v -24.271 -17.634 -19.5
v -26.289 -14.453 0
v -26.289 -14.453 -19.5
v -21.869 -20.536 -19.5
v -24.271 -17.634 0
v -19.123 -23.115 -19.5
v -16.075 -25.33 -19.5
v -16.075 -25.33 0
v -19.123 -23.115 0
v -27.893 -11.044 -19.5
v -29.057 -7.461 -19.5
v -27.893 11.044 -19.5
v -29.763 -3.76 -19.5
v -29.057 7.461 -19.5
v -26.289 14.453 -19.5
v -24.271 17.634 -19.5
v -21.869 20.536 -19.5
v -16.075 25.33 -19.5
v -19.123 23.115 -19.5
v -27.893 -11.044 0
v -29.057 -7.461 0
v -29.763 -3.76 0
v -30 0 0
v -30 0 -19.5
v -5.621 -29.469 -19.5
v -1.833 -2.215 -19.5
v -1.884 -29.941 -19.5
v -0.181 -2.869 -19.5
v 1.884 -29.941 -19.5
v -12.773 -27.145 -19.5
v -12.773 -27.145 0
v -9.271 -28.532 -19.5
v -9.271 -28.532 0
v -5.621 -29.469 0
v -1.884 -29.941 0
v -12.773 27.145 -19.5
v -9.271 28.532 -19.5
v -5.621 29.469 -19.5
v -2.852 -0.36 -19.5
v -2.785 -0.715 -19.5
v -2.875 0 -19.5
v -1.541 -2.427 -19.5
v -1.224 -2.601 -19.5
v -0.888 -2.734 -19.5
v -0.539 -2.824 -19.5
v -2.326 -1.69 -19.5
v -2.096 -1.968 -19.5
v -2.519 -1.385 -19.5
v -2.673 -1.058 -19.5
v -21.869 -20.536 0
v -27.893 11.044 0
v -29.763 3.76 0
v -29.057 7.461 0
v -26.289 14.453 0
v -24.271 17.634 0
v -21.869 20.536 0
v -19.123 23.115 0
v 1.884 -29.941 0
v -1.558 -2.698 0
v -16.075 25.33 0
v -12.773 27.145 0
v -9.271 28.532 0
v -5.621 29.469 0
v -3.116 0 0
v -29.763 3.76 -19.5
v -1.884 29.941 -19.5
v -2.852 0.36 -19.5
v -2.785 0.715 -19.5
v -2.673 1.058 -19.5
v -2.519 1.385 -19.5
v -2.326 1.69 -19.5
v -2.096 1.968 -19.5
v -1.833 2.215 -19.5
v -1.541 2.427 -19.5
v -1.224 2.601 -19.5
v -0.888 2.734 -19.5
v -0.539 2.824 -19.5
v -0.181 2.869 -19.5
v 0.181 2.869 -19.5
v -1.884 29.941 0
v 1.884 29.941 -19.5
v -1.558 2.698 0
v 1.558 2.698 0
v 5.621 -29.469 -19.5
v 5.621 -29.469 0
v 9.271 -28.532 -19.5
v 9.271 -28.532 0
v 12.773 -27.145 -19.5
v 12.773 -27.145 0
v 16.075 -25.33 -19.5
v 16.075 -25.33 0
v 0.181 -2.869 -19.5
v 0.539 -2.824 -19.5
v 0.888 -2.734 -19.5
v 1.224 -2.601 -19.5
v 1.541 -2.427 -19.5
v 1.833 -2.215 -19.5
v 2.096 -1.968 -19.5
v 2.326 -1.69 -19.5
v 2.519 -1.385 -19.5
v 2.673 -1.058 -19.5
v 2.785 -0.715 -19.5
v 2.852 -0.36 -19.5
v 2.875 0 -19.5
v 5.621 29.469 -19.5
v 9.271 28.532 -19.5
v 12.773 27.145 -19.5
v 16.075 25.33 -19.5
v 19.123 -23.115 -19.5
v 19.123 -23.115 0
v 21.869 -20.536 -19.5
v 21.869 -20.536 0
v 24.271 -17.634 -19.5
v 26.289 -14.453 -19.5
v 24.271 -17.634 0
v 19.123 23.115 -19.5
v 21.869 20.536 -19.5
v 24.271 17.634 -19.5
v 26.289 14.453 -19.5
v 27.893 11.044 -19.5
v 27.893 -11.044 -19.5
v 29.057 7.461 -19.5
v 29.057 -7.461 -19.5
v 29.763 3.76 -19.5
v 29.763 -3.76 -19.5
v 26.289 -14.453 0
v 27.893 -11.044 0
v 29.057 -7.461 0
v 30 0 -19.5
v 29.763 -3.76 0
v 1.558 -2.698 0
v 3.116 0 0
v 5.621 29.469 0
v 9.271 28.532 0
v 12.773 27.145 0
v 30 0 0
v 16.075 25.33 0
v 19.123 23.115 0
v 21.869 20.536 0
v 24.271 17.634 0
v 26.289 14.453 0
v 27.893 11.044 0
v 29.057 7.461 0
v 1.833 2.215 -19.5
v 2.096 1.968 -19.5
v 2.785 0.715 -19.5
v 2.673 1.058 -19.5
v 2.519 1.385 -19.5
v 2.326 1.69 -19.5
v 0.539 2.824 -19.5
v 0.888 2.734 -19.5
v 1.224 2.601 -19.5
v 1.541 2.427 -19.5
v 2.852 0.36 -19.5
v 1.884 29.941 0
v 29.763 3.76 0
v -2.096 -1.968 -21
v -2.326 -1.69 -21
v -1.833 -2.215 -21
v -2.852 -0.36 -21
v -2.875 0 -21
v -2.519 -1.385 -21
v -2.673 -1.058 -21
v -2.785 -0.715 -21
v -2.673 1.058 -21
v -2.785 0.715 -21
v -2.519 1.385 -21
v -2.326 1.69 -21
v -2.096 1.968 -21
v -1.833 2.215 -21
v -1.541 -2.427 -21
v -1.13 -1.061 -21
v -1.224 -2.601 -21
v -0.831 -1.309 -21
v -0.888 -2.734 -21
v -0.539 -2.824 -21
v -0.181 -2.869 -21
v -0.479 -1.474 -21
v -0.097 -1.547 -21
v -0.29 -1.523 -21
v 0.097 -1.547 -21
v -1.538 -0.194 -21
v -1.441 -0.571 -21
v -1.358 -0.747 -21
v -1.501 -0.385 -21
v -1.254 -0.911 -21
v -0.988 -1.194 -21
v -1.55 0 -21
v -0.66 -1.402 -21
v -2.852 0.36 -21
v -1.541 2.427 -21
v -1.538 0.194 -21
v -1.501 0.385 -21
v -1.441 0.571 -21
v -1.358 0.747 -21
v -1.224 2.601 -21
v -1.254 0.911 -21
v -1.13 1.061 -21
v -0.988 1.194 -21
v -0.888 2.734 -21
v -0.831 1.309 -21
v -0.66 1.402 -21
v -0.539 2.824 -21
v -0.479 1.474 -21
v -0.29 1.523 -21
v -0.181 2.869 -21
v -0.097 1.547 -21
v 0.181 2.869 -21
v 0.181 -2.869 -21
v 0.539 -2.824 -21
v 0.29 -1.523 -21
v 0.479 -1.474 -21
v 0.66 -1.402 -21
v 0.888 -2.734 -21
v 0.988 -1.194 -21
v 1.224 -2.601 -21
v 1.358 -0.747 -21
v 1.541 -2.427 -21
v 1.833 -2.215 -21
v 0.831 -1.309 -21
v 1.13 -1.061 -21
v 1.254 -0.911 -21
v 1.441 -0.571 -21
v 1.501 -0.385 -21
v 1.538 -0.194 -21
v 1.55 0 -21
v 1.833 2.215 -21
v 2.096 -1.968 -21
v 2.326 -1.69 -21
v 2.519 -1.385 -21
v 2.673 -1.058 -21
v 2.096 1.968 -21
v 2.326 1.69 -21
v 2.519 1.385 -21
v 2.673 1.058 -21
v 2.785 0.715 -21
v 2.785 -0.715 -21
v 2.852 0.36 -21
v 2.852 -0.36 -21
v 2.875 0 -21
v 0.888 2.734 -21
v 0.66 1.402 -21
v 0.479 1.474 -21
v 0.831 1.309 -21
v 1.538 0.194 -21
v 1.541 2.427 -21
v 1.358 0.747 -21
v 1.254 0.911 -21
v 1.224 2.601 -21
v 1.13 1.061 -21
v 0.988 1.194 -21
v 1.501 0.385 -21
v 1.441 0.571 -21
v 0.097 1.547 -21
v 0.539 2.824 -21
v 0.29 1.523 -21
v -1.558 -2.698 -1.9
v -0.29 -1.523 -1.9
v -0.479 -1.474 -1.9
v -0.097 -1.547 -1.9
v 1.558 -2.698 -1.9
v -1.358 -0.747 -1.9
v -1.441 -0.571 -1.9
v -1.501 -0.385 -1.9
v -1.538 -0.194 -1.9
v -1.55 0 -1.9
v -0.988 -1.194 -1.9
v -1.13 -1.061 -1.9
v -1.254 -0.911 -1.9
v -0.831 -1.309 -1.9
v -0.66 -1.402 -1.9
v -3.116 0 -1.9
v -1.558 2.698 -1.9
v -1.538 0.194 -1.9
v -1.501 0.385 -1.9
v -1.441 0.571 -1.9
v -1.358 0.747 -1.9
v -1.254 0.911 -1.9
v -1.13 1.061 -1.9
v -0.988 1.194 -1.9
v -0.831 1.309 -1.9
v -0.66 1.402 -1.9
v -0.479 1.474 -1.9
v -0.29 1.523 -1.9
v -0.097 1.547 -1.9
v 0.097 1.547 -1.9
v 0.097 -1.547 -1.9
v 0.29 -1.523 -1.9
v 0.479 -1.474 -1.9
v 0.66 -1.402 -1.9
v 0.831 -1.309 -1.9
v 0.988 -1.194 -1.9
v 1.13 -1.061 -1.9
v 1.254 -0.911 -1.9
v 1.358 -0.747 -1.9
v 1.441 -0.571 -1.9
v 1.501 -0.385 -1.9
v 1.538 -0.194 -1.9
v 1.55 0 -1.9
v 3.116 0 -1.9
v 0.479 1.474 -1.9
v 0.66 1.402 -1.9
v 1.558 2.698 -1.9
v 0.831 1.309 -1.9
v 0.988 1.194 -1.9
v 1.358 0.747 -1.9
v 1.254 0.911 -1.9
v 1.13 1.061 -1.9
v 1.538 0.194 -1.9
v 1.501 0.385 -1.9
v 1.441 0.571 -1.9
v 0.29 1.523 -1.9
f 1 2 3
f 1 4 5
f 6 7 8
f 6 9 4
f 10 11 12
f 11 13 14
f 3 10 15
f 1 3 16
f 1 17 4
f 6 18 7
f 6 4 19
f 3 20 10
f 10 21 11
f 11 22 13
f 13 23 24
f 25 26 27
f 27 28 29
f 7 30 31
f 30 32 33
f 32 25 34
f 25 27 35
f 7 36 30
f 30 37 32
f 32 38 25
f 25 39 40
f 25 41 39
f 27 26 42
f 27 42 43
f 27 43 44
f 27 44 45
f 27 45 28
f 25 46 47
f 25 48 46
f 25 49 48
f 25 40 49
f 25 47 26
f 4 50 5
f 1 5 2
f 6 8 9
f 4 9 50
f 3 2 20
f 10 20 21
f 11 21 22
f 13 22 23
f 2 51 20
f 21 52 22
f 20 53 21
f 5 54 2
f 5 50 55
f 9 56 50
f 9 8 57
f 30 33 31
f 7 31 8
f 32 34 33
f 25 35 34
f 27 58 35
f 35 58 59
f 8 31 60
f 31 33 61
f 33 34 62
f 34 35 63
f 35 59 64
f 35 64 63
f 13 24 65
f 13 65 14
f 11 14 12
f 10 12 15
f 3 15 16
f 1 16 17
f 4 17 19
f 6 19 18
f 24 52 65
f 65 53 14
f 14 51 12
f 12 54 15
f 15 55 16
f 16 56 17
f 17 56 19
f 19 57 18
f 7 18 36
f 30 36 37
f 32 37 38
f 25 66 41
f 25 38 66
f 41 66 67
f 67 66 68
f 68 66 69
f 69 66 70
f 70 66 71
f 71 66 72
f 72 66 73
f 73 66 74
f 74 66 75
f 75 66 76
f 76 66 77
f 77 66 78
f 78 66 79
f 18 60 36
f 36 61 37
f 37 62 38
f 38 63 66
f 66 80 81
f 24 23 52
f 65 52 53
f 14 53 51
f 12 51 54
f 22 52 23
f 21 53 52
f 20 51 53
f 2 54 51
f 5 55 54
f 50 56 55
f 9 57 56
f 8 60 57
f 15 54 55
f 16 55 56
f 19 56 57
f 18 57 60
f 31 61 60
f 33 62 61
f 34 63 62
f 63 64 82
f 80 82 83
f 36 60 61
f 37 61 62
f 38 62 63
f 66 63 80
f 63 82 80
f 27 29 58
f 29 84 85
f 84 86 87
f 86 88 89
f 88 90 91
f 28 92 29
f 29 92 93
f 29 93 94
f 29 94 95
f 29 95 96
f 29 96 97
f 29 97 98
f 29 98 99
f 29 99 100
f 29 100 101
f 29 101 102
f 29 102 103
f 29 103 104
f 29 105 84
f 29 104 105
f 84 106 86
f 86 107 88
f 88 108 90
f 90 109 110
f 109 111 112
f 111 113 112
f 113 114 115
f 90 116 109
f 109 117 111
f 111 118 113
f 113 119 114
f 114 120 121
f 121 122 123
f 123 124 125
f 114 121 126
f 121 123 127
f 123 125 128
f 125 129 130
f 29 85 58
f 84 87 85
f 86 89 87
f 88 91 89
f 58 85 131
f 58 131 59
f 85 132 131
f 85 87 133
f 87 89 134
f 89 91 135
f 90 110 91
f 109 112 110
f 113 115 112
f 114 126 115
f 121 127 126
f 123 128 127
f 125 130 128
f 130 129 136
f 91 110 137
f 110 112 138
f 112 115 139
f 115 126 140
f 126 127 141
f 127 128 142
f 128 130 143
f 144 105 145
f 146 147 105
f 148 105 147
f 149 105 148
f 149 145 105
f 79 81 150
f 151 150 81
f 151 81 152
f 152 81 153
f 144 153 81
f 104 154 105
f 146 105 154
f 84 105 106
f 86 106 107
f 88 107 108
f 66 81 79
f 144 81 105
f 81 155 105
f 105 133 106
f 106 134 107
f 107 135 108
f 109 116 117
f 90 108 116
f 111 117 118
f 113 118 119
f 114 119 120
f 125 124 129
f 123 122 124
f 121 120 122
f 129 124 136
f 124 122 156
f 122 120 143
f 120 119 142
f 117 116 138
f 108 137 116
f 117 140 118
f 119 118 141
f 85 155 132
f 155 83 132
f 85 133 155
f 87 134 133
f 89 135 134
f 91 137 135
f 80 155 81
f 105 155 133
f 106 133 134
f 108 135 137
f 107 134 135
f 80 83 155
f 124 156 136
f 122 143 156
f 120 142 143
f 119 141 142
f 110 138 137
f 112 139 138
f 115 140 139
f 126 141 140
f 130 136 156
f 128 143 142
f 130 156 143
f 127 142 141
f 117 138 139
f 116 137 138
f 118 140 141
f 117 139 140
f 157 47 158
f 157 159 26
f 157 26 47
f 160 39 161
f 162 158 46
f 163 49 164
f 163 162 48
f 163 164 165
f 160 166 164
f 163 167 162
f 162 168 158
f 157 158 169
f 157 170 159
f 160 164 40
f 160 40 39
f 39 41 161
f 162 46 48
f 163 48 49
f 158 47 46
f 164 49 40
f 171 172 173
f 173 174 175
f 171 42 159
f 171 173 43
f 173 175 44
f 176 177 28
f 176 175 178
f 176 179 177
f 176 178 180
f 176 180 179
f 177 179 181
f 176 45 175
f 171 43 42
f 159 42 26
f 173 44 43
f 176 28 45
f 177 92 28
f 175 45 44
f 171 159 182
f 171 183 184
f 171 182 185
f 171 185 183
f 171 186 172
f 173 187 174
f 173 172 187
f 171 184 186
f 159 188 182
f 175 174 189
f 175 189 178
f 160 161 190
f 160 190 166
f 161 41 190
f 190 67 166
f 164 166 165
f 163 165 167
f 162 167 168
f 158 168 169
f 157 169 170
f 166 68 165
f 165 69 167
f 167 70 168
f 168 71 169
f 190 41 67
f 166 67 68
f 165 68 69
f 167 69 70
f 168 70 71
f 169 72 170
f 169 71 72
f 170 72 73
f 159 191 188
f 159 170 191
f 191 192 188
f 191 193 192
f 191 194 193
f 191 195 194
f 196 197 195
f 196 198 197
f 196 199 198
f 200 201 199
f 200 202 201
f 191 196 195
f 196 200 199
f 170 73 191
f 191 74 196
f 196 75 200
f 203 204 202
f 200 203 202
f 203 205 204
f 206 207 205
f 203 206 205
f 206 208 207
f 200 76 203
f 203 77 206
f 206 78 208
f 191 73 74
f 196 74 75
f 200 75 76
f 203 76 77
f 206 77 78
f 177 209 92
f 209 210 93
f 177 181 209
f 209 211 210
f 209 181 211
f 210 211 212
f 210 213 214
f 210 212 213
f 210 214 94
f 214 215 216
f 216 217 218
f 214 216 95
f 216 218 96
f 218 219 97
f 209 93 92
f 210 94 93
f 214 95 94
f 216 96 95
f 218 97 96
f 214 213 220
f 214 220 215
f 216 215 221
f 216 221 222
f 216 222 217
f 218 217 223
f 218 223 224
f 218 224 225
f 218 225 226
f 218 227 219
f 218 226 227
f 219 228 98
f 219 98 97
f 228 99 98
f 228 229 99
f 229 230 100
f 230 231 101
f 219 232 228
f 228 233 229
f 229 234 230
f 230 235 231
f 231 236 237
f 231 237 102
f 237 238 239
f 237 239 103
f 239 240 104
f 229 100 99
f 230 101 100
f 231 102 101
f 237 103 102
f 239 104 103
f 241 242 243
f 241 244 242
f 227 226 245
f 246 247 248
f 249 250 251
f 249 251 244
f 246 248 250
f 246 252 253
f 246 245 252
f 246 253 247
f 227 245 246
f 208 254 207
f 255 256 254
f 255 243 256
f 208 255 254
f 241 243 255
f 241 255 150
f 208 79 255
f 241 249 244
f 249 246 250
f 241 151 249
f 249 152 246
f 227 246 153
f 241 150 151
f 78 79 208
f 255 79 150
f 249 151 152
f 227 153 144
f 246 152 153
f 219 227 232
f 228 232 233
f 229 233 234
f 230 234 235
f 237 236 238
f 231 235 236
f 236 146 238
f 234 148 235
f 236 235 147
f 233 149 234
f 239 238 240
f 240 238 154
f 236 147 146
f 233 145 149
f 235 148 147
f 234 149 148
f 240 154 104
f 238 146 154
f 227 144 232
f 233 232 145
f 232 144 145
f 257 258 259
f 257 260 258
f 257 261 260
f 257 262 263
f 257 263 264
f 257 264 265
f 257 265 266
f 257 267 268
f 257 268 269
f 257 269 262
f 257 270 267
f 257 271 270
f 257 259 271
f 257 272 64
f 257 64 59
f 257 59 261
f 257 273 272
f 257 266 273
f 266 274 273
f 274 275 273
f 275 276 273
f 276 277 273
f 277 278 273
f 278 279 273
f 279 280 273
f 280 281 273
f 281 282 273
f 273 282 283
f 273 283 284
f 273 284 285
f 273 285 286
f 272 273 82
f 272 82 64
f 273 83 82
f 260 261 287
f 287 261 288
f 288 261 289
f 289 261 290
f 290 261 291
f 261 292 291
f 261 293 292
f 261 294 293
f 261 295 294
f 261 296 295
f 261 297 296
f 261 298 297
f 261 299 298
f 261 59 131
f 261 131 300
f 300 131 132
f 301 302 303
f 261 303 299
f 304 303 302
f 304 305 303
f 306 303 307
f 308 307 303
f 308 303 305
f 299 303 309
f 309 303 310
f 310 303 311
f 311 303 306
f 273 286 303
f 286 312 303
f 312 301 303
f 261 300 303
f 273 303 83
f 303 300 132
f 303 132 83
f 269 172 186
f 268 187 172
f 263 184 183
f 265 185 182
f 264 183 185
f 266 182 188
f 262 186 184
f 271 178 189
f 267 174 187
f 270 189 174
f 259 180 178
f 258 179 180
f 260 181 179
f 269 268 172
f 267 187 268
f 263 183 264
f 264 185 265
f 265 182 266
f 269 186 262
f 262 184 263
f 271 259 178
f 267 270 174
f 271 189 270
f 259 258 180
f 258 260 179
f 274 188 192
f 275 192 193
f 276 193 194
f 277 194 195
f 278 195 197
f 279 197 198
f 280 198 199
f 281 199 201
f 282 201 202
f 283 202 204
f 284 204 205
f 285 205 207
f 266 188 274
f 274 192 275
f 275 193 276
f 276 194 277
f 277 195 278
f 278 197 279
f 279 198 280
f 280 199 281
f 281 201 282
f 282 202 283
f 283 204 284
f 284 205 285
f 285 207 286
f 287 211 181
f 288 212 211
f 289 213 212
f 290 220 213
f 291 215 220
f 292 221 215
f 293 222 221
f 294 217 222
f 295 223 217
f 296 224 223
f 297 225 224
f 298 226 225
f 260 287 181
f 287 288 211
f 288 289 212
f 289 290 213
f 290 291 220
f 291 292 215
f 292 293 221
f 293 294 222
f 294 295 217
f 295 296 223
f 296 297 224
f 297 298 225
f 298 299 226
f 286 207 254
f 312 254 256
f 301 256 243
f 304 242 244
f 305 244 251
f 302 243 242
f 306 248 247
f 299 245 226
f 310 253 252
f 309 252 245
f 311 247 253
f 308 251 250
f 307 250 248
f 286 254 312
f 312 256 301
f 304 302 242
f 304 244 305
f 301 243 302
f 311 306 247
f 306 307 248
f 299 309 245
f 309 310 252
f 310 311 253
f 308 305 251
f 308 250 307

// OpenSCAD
$fn = 50;


difference() {
	union() {
		translate(v = [0, 0, -19.5000000000]) {
			cylinder(h = 19.5000000000, r = 30.0000000000);
		}
		#translate(v = [0, 0, -21.0000000000]) {
			cylinder(h = 21, r = 2.8750000000);
		}
	}
	union() {
		translate(v = [0, 0, 0]) {
			rotate(a = [0, 0, 0]) {
				difference() {
					union() {
						translate(v = [0, 0, -1.9000000000]) {
							linear_extrude(height = 1.9000000000) {
								polygon(points = [[3.1158000000, 0.0000000000], [1.5579000000, 2.6983619531], [-1.5579000000, 2.6983619531], [-3.1158000000, 0.0000000000], [-1.5579000000, -2.6983619531], [1.5579000000, -2.6983619531]]);
							}
						}
					}
					union();
				}
			}
		}
		#translate(v = [0, 0, -100.0000000000]) {
			cylinder(h = 200, r = 1.5500000000);
		}
	}
}
